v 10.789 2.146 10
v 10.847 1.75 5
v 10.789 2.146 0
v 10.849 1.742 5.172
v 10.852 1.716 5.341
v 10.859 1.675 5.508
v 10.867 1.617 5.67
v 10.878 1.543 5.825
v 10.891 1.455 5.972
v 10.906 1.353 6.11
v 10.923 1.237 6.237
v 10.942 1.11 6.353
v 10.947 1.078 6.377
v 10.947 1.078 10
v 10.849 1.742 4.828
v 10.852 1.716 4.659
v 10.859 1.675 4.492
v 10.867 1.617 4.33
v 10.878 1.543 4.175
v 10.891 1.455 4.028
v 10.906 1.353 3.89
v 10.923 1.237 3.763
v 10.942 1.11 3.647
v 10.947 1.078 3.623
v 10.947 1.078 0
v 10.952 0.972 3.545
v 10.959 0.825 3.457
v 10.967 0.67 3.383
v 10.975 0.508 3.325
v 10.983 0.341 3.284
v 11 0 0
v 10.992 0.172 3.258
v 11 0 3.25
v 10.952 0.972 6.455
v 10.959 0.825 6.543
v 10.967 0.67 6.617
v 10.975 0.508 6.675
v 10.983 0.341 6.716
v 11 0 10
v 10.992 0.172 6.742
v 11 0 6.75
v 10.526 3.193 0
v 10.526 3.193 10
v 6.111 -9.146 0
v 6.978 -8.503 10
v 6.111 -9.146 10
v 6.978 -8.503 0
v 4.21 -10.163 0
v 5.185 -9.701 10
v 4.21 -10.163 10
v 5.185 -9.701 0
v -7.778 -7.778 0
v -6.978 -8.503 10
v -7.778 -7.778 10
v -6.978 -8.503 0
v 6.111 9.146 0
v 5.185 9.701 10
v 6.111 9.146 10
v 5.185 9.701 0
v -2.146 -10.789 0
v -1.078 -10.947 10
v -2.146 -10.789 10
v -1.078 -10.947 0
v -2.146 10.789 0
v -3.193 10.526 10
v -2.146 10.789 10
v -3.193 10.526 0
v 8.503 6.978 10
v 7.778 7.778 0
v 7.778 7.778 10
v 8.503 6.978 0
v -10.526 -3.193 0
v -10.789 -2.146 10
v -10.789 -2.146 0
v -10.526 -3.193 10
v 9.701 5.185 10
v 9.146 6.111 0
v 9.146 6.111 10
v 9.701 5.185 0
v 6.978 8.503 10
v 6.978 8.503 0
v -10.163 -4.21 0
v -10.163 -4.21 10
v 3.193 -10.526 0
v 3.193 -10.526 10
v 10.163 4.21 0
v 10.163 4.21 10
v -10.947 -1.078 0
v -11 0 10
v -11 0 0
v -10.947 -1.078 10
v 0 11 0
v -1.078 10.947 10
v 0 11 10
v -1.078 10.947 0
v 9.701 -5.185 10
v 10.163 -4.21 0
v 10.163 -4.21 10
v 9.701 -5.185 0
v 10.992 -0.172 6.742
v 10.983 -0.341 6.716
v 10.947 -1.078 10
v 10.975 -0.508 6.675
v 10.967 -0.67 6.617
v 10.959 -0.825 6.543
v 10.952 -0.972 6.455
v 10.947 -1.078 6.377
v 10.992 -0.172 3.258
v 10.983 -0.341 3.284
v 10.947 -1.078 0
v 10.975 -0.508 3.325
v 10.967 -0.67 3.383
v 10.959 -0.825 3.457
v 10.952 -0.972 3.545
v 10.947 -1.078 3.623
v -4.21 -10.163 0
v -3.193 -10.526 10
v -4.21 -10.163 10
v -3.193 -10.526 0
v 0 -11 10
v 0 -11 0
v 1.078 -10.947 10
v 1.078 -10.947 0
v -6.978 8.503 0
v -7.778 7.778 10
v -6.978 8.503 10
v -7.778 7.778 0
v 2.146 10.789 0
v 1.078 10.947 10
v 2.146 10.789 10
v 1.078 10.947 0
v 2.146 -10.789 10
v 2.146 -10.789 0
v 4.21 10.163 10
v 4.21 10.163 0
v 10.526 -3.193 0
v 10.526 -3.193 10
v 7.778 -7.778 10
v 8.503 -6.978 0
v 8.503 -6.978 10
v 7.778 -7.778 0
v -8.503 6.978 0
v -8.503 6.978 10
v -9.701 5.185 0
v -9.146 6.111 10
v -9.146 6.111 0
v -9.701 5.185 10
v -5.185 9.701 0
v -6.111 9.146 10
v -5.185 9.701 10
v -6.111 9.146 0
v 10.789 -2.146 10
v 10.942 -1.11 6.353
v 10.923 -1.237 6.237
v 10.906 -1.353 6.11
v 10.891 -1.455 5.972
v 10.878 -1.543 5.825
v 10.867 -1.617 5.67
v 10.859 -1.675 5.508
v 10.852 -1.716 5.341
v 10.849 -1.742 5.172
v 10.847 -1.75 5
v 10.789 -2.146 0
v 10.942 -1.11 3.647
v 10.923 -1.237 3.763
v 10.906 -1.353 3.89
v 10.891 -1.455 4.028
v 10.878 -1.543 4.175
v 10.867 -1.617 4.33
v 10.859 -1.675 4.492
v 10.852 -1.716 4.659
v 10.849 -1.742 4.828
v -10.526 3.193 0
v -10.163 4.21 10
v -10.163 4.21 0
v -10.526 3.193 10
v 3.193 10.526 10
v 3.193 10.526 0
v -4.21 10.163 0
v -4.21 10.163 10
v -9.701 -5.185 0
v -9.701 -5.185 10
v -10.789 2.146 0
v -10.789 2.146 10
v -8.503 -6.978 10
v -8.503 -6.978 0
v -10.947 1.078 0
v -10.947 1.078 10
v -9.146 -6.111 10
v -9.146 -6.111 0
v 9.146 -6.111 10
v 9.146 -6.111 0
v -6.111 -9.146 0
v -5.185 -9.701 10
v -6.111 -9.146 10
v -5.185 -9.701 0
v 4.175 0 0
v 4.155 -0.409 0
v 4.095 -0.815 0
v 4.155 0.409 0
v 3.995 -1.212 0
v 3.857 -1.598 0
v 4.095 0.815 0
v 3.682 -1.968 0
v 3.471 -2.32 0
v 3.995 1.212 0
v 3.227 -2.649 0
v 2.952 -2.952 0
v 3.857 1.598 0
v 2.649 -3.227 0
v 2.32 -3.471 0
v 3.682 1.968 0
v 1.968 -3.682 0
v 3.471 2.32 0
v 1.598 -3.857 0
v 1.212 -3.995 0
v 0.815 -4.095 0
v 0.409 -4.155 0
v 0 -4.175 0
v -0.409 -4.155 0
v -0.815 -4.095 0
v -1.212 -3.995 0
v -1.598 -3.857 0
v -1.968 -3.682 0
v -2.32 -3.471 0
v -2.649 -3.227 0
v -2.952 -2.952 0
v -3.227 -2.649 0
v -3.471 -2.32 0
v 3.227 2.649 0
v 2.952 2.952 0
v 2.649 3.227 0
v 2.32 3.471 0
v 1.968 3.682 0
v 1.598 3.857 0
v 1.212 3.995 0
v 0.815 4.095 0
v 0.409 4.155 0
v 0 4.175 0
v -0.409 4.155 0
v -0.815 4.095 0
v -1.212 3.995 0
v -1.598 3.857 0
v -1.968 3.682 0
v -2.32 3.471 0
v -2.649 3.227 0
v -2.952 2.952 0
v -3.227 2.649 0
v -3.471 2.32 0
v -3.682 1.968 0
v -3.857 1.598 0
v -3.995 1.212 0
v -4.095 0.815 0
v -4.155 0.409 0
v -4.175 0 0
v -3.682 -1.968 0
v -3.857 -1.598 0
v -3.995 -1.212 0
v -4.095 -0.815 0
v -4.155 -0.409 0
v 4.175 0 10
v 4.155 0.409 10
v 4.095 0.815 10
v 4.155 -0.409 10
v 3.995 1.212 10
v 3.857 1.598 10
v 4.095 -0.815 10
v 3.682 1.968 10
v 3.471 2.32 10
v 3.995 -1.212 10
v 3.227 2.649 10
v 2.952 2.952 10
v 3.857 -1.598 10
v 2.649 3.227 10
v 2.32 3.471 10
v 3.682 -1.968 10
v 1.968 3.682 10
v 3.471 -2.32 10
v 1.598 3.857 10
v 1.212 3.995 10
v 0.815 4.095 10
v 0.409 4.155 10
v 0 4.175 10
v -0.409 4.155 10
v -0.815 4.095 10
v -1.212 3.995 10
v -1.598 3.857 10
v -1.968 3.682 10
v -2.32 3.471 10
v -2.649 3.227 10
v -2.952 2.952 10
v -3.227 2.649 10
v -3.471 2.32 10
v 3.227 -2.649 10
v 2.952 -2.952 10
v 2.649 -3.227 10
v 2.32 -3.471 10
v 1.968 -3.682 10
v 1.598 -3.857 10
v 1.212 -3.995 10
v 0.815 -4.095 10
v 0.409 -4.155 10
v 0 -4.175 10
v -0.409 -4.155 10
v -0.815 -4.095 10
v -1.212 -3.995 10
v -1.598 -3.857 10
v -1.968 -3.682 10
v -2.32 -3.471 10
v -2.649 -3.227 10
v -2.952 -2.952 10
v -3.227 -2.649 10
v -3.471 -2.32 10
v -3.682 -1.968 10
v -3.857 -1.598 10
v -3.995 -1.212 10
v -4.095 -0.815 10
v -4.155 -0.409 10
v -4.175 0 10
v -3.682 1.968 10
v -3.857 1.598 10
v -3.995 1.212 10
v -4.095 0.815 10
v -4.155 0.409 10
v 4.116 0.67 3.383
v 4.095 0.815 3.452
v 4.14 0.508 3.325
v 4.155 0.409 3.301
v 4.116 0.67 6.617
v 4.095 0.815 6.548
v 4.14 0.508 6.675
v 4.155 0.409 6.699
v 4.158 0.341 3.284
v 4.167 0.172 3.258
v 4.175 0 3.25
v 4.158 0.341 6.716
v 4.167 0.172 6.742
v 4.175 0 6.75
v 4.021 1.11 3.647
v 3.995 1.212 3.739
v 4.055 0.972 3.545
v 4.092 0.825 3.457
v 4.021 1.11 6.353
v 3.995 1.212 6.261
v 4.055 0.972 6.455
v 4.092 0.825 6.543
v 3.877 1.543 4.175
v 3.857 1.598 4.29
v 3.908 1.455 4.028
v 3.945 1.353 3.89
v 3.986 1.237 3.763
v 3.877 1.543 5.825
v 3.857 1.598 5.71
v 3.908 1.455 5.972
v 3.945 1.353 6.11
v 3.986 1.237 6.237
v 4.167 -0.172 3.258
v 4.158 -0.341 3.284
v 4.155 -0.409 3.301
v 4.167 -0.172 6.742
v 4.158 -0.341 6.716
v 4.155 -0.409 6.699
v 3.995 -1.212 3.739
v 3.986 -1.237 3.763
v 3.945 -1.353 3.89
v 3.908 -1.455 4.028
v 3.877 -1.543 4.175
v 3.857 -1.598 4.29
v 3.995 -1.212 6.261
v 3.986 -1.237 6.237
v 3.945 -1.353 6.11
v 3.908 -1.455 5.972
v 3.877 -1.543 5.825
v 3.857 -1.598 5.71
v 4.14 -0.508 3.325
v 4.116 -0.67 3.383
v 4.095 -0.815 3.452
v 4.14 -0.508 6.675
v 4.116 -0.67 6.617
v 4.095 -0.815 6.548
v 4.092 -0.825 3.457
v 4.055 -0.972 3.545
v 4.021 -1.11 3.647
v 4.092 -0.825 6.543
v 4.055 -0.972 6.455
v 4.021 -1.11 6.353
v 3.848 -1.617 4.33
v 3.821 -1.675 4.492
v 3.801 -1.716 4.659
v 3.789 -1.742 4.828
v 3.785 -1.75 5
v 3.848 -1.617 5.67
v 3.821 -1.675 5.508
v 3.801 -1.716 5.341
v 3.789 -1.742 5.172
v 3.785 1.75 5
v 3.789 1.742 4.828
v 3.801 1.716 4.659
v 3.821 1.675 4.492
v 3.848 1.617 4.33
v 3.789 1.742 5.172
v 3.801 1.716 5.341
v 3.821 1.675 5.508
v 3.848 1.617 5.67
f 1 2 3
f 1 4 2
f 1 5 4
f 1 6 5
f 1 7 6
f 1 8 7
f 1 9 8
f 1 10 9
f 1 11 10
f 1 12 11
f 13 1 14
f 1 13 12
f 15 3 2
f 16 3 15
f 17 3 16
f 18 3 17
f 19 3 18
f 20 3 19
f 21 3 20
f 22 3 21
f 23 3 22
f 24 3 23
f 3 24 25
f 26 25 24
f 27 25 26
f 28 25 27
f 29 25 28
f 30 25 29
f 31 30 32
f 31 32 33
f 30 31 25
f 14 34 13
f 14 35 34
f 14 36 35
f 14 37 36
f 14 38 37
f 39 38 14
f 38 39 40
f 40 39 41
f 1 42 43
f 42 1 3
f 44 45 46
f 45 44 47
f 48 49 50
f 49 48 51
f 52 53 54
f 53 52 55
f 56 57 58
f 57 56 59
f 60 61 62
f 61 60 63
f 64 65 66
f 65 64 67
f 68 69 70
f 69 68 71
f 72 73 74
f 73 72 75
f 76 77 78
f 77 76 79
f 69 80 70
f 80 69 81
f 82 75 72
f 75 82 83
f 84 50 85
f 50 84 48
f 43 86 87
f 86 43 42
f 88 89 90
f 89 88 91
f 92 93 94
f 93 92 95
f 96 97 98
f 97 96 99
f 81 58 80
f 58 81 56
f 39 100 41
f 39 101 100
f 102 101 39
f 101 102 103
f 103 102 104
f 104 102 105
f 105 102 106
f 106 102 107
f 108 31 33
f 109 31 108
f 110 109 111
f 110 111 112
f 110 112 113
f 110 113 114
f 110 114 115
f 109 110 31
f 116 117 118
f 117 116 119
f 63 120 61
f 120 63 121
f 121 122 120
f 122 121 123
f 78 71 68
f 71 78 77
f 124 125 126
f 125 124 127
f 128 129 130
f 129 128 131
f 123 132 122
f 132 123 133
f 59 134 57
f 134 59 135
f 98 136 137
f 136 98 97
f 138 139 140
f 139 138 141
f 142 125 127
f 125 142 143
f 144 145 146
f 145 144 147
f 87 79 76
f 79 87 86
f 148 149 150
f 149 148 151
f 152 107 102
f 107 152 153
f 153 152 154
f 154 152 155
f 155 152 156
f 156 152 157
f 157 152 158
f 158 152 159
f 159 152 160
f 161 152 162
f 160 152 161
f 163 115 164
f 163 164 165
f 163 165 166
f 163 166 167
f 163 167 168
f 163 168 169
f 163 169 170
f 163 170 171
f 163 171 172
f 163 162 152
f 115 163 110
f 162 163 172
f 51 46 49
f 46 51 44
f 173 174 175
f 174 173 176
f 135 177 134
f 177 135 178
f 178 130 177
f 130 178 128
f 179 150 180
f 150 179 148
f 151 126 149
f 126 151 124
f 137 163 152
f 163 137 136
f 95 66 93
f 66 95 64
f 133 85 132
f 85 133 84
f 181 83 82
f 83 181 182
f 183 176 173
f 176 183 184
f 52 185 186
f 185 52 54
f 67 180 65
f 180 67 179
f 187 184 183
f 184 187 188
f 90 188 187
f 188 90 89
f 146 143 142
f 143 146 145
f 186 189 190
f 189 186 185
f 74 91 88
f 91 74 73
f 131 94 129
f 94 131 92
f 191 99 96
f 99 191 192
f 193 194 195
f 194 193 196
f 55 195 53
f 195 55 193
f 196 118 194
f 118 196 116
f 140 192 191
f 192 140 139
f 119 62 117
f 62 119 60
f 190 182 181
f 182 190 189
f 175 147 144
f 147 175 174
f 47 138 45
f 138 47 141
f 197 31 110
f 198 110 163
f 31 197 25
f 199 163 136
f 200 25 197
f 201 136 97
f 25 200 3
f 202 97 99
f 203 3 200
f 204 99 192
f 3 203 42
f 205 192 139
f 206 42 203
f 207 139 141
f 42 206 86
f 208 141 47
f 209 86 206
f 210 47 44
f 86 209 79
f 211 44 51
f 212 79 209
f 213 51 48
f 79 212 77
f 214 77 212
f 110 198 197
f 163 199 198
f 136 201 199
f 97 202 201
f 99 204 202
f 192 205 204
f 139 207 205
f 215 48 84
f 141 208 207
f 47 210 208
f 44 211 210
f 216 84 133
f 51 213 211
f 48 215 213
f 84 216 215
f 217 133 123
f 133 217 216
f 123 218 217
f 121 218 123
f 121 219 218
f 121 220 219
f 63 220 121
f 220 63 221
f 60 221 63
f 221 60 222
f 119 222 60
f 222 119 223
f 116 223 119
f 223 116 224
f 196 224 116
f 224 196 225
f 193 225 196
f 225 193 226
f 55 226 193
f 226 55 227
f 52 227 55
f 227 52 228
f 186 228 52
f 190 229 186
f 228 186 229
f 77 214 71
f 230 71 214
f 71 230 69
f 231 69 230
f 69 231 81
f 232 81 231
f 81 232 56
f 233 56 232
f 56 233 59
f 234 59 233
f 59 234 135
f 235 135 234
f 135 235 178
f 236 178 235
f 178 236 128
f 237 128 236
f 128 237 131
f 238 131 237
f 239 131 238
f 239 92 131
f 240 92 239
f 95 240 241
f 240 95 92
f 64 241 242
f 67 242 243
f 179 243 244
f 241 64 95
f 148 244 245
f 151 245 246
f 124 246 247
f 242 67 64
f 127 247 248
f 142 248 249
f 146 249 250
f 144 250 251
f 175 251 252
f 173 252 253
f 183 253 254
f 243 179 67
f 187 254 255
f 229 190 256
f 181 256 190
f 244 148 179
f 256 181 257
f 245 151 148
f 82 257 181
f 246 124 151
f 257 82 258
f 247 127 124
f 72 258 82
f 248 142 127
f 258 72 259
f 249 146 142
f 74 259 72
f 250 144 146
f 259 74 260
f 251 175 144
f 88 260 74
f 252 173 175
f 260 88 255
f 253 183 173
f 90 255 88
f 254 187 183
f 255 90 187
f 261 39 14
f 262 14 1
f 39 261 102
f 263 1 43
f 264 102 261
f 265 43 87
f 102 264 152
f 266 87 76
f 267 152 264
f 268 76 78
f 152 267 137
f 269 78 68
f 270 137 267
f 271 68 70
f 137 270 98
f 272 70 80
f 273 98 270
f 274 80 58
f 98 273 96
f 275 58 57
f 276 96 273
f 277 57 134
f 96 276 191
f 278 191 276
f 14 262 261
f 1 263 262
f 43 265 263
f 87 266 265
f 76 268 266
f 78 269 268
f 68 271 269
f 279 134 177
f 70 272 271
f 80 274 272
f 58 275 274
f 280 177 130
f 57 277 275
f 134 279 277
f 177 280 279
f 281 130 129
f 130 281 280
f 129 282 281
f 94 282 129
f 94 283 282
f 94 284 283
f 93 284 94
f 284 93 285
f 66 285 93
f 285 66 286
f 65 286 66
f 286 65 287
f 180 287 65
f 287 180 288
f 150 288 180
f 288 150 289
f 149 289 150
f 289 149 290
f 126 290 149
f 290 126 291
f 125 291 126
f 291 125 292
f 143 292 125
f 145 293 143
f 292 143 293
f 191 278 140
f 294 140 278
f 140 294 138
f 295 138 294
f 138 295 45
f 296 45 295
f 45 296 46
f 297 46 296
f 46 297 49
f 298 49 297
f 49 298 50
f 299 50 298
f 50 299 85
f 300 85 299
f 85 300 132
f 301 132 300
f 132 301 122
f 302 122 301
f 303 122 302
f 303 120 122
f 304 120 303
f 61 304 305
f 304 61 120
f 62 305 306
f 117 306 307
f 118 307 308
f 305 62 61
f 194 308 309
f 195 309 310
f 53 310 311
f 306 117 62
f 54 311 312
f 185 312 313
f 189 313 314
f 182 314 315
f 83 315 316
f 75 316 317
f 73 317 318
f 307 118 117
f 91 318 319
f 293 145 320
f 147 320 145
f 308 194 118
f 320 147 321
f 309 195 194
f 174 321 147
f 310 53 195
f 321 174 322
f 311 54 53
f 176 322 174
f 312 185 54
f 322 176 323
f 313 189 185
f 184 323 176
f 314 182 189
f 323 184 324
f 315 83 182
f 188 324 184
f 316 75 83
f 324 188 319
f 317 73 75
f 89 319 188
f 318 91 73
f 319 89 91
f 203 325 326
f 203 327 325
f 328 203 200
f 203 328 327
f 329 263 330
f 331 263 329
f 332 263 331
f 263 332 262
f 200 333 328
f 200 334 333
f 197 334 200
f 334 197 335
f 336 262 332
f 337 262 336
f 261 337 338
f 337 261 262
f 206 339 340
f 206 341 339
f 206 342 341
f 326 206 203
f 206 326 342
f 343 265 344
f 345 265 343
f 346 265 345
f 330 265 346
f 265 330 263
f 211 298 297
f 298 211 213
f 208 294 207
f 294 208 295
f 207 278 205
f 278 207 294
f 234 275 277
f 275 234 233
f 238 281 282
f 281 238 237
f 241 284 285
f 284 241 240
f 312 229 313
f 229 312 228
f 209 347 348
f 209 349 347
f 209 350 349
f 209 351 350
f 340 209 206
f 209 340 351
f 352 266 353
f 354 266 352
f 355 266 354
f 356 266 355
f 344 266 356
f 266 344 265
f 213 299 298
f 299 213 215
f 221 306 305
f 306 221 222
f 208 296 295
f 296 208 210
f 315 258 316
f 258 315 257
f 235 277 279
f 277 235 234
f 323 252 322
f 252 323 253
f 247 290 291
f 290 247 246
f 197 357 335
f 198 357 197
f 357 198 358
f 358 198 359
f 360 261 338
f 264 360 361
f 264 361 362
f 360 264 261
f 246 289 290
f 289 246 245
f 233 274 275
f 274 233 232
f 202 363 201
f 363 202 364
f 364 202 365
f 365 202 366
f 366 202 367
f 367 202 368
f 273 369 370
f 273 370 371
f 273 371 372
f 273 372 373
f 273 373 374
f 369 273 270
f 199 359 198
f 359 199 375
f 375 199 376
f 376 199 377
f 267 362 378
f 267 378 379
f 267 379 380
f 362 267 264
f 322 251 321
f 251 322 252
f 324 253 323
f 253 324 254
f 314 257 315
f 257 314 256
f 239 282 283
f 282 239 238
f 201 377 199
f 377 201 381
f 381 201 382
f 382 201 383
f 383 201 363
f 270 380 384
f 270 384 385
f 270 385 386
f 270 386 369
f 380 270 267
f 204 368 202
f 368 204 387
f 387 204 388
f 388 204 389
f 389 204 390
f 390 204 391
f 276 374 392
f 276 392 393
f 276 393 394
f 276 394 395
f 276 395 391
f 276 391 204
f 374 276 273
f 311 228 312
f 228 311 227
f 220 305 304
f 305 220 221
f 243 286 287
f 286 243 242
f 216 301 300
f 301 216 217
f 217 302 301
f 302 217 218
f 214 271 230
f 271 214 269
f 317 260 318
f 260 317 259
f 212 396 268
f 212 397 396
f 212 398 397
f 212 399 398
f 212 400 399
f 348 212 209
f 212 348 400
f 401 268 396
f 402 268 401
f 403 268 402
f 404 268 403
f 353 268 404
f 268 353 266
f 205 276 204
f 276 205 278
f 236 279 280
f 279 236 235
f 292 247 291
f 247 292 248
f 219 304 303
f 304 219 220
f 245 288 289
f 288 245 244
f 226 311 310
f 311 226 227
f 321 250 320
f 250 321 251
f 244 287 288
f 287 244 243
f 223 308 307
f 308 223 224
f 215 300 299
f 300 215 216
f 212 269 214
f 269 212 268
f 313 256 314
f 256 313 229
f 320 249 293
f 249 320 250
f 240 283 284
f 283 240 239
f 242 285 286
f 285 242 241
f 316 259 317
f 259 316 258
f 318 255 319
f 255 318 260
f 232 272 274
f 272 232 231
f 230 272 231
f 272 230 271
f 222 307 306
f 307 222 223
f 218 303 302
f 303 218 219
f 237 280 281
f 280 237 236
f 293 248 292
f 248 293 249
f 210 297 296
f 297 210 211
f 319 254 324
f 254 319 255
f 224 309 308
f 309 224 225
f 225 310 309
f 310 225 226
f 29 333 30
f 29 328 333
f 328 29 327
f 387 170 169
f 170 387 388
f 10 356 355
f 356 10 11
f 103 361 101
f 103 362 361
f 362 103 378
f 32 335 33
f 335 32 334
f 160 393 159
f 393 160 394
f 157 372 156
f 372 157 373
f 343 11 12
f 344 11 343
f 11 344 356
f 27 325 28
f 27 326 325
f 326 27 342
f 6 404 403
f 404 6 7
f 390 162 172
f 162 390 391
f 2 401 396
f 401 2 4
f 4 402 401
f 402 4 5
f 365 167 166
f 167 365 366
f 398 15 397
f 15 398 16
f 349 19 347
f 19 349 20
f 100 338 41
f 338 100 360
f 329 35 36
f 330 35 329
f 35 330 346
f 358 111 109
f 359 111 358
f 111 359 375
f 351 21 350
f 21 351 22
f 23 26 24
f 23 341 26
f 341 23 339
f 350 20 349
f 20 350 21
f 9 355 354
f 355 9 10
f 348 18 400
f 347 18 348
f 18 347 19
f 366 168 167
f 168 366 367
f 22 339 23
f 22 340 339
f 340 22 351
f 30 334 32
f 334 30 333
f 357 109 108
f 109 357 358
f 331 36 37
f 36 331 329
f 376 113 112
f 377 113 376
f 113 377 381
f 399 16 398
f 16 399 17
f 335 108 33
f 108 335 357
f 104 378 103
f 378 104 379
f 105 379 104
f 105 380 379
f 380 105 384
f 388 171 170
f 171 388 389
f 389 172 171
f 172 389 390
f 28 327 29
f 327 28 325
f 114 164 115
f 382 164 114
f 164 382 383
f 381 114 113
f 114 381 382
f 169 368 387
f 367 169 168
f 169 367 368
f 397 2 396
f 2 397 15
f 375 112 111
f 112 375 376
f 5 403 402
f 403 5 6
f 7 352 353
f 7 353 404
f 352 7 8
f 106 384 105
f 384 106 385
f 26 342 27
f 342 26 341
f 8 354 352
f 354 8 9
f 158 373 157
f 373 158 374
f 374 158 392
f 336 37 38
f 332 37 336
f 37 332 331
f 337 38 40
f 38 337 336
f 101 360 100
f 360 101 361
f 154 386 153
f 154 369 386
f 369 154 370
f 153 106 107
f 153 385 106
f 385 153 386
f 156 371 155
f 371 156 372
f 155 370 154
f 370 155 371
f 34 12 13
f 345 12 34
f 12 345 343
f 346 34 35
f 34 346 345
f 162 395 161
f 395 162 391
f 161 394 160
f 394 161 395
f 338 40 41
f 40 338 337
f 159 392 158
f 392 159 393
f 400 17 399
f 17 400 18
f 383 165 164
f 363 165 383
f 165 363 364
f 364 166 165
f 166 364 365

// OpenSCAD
// file: parameters.scad
// =============================================================================
// Gen-Y Dual-rotor MICRO-GAP copper-window AFPM — WOUND-AWARE (HARD GATE)
// PRIMARY challenger vs Gen-V. Thinner m2m + larger copper window + 150 t.
// =============================================================================

// --- Wire / wind budget (26 AWG, ~1 lb spool ≈ 390 m bare-equiv) --------------
wire_awg            = 26;
wire_od             = 0.45;     // insulated OD mm
turns               = 150;      // +10 vs Gen-V
fill                = 0.70;
layers_per_face     = 2;        // axial layers proud of EACH flange
wind_build_axial    = layers_per_face * wire_od * fill;   // 0.63 mm
wind_build_radial   = 3 * wire_od * fill;                 // 0.945 mm

// --- Pancake former (bare STL) — thinner web/flange than Gen-V ---------------
coil_id_r           = 21.0;     // larger copper window vs Gen-V 23–58
coil_od_r           = 60.0;
span_deg            = 26.0;     // 12 stations × 30° pitch
former_web          = 1.8;
flange_t            = 0.70;
wall                = 1.2;
slot_w              = 2.4;
mount_hole          = 3.5;
tab_len             = 7.0;

former_bare_h       = former_web + 2 * flange_t;            // 3.2 mm
coil_envelope_h     = former_bare_h + 2 * wind_build_axial; // 4.46 mm

// --- Running clearance (magnet face → WOUND face) EACH side ------------------
run_clear           = 0.65;     // PASS ≥ 0.5 (prefer ≥0.65)
gap_spacer_h        = run_clear + wind_build_axial;         // 1.28 mm
m2m                 = coil_envelope_h + 2 * run_clear;      // 5.76 mm (beats Gen-V 6.16)

// --- Mid stator (12 pancakes 3φ; winds proud both faces) ---------------------
coil_stations       = 12;
bay_r_in            = coil_id_r - 2.0 - wind_build_radial;
bay_r_out           = coil_od_r + 2.0 + wind_build_radial;
bay_span            = span_deg + 4.0;
bay_offset          = 2.0;
stator_thick        = former_bare_h;                        // winds proud ±Z
stator_od           = 156.0;
shaft_clear_stator  = 36.0;
coil_mount_r        = 28.0;

// --- Rotors (×2) — 8×Ø20 + 24×Ø5 Halbach each face ---------------------------
large_pocket_d      = 20.3;
small_pocket_d      = 5.3;
pocket_h            = 5.2;
large_n             = 8;
R_large             = 52.0;
R_small_inner       = 40.0;
R_small_mid         = 52.0;
R_small_outer       = 64.0;
carrier_od          = 152.0;
carrier_thick       = 7.5;
hub_h               = 10.0;
hub_od              = 30.0;
rotor_b_offset_deg  = 22.5;

// --- Modular MAX interface (Gen-E family) ------------------------------------
shaft_bore          = 8.35;
bearing_d           = 21.85;
bearing_h           = 7.2;
m3_clear            = 3.5;
bolt_r_inner        = 36.0;
bolt_n_inner        = 6;
flange_bolt_r       = 72.0;
flange_bolt_n       = 6;
brace_r             = 68.0;
brace_d             = 4.3;
brace_n             = 4;

spacer_pad_od       = 14.0;
spacer_pad_id       = m3_clear;
endbell_od          = 156.0;
endbell_thick       = 8.0;
endbell_shaft_clear = 10.0;

$fn = 64;
// main file
// Gen-Y shaft collar — print ×2–4
include <parameters.scad>;
$fn = 64;
od = 22; id = shaft_bore; h = 10; set_d = 3.5;
difference() {
    cylinder(d=od, h=h);
    translate([0, 0, -0.1]) cylinder(d=id, h=h + 0.2);
    translate([0, 0, h/2]) rotate([0, 90, 0]) cylinder(d=set_d, h=od);
}
